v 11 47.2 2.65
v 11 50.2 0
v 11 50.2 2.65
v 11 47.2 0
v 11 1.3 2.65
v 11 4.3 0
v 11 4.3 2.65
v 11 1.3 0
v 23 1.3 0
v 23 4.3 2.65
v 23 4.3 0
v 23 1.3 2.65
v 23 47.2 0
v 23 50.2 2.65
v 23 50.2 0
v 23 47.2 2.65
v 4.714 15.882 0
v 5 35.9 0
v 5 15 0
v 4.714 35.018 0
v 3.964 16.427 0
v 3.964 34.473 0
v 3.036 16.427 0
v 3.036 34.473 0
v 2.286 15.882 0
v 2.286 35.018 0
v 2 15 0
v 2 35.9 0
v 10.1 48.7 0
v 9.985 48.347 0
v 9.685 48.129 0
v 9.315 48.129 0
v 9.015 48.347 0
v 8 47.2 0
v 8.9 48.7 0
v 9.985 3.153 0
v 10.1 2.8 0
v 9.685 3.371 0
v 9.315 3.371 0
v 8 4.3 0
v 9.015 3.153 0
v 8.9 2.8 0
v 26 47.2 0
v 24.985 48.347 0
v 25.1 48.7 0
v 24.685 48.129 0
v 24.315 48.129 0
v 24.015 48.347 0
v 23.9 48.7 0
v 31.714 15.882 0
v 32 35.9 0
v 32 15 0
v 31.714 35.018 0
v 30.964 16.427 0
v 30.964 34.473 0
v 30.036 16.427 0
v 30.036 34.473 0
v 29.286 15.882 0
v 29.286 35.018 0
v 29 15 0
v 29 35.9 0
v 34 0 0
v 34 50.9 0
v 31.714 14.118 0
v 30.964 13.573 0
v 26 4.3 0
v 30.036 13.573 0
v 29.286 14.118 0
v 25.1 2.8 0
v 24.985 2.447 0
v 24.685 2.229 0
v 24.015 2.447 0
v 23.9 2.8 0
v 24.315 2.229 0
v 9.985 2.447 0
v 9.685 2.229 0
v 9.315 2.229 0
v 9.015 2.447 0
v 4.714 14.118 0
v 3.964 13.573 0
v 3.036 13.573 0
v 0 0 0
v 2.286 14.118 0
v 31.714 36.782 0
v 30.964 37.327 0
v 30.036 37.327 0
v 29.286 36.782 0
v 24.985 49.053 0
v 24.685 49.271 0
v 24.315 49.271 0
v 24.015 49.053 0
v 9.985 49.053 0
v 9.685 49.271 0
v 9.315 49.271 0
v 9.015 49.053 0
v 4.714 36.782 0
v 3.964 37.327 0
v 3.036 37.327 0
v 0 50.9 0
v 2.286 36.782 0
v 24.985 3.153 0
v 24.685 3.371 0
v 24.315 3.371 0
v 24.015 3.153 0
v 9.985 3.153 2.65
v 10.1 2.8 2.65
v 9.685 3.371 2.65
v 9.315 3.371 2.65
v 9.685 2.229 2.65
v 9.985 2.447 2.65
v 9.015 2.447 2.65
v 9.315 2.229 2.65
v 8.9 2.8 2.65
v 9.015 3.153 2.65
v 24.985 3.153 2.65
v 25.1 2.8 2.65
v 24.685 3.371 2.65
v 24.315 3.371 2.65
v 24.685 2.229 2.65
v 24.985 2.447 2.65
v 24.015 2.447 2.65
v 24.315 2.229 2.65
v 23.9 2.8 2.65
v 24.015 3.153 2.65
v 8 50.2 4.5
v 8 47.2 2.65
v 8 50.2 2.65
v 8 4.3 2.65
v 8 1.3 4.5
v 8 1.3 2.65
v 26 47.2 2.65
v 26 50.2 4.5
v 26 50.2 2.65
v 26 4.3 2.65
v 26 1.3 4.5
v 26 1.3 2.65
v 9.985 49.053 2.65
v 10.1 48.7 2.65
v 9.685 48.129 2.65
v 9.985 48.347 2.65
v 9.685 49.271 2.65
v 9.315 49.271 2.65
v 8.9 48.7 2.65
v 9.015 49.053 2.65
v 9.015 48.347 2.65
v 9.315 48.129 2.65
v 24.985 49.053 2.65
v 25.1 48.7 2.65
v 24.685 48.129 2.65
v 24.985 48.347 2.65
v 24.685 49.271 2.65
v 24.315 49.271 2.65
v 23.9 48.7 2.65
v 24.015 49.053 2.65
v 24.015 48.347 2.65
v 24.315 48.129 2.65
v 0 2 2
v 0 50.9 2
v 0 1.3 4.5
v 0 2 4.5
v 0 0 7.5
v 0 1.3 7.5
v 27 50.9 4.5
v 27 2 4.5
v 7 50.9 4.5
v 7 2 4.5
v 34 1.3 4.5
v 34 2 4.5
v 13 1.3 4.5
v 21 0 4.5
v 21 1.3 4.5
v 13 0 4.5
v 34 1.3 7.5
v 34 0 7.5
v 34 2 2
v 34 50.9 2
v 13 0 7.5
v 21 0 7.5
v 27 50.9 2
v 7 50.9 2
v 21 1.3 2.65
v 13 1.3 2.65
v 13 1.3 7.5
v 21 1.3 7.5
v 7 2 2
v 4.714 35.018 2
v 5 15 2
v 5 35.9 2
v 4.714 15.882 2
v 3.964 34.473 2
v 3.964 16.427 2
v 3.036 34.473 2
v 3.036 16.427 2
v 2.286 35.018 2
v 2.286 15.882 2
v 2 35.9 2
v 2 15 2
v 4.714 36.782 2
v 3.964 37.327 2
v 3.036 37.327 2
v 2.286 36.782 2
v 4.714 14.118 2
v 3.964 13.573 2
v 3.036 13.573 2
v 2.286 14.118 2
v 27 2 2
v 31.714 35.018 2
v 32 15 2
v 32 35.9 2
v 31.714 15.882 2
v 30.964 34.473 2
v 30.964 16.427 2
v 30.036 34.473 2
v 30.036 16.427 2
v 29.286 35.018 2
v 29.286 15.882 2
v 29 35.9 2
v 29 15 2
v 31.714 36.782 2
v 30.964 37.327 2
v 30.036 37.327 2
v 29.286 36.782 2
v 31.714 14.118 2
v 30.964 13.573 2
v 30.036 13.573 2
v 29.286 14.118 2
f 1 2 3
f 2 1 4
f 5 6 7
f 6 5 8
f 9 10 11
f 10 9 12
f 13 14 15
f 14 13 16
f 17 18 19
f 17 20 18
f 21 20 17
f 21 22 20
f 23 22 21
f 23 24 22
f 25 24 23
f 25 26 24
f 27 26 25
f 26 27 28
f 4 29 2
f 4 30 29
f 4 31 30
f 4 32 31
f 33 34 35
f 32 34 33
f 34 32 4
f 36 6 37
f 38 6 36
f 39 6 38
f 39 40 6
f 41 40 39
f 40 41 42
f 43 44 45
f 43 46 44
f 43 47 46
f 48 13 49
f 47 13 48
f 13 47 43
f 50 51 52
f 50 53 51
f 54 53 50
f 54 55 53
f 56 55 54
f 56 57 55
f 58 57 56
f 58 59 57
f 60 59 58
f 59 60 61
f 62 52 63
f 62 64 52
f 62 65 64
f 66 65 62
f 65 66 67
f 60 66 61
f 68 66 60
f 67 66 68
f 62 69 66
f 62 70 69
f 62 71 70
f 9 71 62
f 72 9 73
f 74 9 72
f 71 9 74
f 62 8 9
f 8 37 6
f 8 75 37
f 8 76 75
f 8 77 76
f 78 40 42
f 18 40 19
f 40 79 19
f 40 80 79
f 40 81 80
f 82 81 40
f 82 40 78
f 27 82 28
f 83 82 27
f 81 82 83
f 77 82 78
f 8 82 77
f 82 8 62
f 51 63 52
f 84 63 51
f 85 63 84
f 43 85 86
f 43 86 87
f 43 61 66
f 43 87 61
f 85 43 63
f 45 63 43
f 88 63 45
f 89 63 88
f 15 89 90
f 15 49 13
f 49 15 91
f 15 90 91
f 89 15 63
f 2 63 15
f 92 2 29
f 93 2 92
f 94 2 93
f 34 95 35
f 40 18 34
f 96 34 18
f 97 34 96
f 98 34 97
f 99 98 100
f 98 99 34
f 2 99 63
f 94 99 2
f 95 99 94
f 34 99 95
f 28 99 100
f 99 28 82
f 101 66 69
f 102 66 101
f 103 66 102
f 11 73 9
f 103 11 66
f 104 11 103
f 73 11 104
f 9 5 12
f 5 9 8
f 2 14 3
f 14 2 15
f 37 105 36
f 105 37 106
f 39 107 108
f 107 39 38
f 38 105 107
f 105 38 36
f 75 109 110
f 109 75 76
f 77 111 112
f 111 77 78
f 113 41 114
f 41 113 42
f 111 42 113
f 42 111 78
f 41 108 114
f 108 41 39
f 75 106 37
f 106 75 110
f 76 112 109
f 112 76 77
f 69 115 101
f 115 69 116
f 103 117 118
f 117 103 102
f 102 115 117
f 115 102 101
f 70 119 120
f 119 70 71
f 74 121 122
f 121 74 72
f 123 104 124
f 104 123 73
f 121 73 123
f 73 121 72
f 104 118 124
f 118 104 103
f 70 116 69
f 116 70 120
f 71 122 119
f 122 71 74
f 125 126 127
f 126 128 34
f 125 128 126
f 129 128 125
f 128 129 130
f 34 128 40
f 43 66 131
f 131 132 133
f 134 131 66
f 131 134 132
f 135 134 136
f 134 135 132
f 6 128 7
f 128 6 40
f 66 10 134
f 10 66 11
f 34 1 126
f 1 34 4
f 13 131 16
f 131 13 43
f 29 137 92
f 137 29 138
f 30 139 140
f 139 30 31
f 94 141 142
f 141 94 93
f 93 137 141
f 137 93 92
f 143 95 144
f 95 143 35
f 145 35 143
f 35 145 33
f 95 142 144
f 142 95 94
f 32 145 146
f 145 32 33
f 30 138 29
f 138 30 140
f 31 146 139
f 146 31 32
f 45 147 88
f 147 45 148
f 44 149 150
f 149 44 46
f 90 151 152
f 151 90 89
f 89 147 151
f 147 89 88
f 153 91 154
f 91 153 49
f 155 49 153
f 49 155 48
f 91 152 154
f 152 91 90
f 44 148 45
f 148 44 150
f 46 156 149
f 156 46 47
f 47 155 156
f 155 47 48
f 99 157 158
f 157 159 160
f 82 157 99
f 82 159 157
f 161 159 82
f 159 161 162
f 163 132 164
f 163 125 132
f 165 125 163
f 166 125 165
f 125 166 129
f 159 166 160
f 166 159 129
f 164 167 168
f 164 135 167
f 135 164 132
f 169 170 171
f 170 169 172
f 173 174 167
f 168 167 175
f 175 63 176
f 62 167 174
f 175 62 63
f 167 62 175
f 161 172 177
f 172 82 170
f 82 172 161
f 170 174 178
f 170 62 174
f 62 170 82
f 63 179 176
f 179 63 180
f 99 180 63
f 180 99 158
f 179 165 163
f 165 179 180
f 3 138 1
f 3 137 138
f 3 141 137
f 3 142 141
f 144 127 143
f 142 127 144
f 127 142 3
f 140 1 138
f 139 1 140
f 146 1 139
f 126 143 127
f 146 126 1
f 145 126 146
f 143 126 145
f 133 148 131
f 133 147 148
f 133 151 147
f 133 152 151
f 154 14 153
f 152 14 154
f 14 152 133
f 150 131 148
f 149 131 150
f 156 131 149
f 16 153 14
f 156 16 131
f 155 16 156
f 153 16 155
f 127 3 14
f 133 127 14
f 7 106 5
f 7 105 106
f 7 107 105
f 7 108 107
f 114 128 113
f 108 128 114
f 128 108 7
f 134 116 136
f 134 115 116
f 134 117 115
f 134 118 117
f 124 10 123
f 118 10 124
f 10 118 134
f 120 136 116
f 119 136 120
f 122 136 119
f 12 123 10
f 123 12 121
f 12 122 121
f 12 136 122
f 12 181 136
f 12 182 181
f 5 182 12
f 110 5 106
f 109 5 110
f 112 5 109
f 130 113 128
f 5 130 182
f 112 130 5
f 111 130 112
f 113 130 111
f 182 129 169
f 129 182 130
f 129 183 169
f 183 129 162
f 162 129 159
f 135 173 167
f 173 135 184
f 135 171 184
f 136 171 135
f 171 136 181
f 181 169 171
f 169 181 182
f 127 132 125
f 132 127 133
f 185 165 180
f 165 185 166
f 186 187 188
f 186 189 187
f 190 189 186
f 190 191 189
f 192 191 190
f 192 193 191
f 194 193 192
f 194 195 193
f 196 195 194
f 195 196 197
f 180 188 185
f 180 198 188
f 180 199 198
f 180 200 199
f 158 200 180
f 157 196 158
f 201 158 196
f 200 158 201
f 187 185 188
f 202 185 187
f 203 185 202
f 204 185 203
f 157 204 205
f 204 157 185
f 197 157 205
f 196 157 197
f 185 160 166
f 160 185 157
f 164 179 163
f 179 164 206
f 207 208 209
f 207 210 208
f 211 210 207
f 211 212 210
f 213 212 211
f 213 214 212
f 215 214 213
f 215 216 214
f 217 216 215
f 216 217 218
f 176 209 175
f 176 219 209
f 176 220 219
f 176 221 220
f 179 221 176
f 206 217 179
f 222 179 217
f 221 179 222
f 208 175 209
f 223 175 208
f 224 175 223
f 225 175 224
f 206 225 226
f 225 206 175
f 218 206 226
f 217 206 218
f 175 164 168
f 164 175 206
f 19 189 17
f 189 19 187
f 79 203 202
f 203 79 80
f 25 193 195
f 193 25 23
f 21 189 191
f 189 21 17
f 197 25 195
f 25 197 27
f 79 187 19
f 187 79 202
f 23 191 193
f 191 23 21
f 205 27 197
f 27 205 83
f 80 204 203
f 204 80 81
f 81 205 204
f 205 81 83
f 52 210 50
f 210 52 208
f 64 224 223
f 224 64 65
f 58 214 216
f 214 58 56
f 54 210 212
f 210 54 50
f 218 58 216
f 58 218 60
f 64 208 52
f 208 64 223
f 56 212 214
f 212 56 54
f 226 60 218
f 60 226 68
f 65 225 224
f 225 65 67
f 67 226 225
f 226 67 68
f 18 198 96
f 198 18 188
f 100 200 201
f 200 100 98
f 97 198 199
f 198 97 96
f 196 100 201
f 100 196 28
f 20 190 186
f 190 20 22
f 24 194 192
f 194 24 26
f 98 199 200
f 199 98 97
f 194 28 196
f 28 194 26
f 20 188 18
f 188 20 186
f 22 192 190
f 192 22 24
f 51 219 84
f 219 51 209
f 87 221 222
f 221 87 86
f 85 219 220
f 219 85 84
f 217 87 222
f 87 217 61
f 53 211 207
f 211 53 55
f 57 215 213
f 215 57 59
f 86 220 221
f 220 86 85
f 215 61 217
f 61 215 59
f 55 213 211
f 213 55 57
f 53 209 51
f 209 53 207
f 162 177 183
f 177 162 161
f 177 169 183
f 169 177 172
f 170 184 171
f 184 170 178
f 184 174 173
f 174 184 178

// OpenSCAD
width= 34;
length = 51-0.1;
height = 4.5;

left = [40,0,0];
front = [-34,1,0];
under = [0,0,-10];
over = [0,0,10];

none = [0,0,0];

color([0,1,0]){
  translate(none){
    translate([0,0,0]){
      cube([13,1.3,7.5]);
    }
    translate([width-13,0,0]){
      cube([13,1.3,7.5]);
    }
      
    difference(){
      cube([width,length,height]);
      
      // Inner
      translate([8,1.3,2.65]){
        cube([18,length-2,3]); // Where arduino sits
      }
      
      smallHoles = 0.6;
      translate([11,1.3,0]){
        cube([12,length-2,3]); // remove middle short sides
        translate([-1.5,1.5,-1]) cylinder(h=20, r=smallHoles, $fn=10);
        translate([12+1.5,1.5,-1]) cylinder(h=20, r=smallHoles, $fn=10);
        
      }
      translate([8,4.3,0]){
        cube([18,length-8,3]); // remove middle longsides
        
        translate([1.5,length-8+1.5,-1]) cylinder(h=20, r=smallHoles, $fn=10);
        translate([18-1.5,length-8+1.5,-1]) cylinder(h=20, r=smallHoles, $fn=10);
      }
      
      // Outer
      translate([0,2,2]){
        cube([7,length,3]);
      }
      translate([27,2,2]){
        cube([7,length,3]);
      }
      
      //holes
      
      in  = 15;
      in2  = length-in;
      translate([3.5,in,0]){
        cylinder(h=20, r=1.5, $fn=10);
      }
      translate([width-3.5,in,0]){
        cylinder(h=20, r=1.5, $fn=10);
      }
      
      translate([3.5,in2,0]){
        cylinder(h=20, r=1.5, $fn=10);
      }
      translate([width-3.5,in2,0]){
        cylinder(h=20, r=1.5, $fn=10);
      }
      
      
    }
  }
}
